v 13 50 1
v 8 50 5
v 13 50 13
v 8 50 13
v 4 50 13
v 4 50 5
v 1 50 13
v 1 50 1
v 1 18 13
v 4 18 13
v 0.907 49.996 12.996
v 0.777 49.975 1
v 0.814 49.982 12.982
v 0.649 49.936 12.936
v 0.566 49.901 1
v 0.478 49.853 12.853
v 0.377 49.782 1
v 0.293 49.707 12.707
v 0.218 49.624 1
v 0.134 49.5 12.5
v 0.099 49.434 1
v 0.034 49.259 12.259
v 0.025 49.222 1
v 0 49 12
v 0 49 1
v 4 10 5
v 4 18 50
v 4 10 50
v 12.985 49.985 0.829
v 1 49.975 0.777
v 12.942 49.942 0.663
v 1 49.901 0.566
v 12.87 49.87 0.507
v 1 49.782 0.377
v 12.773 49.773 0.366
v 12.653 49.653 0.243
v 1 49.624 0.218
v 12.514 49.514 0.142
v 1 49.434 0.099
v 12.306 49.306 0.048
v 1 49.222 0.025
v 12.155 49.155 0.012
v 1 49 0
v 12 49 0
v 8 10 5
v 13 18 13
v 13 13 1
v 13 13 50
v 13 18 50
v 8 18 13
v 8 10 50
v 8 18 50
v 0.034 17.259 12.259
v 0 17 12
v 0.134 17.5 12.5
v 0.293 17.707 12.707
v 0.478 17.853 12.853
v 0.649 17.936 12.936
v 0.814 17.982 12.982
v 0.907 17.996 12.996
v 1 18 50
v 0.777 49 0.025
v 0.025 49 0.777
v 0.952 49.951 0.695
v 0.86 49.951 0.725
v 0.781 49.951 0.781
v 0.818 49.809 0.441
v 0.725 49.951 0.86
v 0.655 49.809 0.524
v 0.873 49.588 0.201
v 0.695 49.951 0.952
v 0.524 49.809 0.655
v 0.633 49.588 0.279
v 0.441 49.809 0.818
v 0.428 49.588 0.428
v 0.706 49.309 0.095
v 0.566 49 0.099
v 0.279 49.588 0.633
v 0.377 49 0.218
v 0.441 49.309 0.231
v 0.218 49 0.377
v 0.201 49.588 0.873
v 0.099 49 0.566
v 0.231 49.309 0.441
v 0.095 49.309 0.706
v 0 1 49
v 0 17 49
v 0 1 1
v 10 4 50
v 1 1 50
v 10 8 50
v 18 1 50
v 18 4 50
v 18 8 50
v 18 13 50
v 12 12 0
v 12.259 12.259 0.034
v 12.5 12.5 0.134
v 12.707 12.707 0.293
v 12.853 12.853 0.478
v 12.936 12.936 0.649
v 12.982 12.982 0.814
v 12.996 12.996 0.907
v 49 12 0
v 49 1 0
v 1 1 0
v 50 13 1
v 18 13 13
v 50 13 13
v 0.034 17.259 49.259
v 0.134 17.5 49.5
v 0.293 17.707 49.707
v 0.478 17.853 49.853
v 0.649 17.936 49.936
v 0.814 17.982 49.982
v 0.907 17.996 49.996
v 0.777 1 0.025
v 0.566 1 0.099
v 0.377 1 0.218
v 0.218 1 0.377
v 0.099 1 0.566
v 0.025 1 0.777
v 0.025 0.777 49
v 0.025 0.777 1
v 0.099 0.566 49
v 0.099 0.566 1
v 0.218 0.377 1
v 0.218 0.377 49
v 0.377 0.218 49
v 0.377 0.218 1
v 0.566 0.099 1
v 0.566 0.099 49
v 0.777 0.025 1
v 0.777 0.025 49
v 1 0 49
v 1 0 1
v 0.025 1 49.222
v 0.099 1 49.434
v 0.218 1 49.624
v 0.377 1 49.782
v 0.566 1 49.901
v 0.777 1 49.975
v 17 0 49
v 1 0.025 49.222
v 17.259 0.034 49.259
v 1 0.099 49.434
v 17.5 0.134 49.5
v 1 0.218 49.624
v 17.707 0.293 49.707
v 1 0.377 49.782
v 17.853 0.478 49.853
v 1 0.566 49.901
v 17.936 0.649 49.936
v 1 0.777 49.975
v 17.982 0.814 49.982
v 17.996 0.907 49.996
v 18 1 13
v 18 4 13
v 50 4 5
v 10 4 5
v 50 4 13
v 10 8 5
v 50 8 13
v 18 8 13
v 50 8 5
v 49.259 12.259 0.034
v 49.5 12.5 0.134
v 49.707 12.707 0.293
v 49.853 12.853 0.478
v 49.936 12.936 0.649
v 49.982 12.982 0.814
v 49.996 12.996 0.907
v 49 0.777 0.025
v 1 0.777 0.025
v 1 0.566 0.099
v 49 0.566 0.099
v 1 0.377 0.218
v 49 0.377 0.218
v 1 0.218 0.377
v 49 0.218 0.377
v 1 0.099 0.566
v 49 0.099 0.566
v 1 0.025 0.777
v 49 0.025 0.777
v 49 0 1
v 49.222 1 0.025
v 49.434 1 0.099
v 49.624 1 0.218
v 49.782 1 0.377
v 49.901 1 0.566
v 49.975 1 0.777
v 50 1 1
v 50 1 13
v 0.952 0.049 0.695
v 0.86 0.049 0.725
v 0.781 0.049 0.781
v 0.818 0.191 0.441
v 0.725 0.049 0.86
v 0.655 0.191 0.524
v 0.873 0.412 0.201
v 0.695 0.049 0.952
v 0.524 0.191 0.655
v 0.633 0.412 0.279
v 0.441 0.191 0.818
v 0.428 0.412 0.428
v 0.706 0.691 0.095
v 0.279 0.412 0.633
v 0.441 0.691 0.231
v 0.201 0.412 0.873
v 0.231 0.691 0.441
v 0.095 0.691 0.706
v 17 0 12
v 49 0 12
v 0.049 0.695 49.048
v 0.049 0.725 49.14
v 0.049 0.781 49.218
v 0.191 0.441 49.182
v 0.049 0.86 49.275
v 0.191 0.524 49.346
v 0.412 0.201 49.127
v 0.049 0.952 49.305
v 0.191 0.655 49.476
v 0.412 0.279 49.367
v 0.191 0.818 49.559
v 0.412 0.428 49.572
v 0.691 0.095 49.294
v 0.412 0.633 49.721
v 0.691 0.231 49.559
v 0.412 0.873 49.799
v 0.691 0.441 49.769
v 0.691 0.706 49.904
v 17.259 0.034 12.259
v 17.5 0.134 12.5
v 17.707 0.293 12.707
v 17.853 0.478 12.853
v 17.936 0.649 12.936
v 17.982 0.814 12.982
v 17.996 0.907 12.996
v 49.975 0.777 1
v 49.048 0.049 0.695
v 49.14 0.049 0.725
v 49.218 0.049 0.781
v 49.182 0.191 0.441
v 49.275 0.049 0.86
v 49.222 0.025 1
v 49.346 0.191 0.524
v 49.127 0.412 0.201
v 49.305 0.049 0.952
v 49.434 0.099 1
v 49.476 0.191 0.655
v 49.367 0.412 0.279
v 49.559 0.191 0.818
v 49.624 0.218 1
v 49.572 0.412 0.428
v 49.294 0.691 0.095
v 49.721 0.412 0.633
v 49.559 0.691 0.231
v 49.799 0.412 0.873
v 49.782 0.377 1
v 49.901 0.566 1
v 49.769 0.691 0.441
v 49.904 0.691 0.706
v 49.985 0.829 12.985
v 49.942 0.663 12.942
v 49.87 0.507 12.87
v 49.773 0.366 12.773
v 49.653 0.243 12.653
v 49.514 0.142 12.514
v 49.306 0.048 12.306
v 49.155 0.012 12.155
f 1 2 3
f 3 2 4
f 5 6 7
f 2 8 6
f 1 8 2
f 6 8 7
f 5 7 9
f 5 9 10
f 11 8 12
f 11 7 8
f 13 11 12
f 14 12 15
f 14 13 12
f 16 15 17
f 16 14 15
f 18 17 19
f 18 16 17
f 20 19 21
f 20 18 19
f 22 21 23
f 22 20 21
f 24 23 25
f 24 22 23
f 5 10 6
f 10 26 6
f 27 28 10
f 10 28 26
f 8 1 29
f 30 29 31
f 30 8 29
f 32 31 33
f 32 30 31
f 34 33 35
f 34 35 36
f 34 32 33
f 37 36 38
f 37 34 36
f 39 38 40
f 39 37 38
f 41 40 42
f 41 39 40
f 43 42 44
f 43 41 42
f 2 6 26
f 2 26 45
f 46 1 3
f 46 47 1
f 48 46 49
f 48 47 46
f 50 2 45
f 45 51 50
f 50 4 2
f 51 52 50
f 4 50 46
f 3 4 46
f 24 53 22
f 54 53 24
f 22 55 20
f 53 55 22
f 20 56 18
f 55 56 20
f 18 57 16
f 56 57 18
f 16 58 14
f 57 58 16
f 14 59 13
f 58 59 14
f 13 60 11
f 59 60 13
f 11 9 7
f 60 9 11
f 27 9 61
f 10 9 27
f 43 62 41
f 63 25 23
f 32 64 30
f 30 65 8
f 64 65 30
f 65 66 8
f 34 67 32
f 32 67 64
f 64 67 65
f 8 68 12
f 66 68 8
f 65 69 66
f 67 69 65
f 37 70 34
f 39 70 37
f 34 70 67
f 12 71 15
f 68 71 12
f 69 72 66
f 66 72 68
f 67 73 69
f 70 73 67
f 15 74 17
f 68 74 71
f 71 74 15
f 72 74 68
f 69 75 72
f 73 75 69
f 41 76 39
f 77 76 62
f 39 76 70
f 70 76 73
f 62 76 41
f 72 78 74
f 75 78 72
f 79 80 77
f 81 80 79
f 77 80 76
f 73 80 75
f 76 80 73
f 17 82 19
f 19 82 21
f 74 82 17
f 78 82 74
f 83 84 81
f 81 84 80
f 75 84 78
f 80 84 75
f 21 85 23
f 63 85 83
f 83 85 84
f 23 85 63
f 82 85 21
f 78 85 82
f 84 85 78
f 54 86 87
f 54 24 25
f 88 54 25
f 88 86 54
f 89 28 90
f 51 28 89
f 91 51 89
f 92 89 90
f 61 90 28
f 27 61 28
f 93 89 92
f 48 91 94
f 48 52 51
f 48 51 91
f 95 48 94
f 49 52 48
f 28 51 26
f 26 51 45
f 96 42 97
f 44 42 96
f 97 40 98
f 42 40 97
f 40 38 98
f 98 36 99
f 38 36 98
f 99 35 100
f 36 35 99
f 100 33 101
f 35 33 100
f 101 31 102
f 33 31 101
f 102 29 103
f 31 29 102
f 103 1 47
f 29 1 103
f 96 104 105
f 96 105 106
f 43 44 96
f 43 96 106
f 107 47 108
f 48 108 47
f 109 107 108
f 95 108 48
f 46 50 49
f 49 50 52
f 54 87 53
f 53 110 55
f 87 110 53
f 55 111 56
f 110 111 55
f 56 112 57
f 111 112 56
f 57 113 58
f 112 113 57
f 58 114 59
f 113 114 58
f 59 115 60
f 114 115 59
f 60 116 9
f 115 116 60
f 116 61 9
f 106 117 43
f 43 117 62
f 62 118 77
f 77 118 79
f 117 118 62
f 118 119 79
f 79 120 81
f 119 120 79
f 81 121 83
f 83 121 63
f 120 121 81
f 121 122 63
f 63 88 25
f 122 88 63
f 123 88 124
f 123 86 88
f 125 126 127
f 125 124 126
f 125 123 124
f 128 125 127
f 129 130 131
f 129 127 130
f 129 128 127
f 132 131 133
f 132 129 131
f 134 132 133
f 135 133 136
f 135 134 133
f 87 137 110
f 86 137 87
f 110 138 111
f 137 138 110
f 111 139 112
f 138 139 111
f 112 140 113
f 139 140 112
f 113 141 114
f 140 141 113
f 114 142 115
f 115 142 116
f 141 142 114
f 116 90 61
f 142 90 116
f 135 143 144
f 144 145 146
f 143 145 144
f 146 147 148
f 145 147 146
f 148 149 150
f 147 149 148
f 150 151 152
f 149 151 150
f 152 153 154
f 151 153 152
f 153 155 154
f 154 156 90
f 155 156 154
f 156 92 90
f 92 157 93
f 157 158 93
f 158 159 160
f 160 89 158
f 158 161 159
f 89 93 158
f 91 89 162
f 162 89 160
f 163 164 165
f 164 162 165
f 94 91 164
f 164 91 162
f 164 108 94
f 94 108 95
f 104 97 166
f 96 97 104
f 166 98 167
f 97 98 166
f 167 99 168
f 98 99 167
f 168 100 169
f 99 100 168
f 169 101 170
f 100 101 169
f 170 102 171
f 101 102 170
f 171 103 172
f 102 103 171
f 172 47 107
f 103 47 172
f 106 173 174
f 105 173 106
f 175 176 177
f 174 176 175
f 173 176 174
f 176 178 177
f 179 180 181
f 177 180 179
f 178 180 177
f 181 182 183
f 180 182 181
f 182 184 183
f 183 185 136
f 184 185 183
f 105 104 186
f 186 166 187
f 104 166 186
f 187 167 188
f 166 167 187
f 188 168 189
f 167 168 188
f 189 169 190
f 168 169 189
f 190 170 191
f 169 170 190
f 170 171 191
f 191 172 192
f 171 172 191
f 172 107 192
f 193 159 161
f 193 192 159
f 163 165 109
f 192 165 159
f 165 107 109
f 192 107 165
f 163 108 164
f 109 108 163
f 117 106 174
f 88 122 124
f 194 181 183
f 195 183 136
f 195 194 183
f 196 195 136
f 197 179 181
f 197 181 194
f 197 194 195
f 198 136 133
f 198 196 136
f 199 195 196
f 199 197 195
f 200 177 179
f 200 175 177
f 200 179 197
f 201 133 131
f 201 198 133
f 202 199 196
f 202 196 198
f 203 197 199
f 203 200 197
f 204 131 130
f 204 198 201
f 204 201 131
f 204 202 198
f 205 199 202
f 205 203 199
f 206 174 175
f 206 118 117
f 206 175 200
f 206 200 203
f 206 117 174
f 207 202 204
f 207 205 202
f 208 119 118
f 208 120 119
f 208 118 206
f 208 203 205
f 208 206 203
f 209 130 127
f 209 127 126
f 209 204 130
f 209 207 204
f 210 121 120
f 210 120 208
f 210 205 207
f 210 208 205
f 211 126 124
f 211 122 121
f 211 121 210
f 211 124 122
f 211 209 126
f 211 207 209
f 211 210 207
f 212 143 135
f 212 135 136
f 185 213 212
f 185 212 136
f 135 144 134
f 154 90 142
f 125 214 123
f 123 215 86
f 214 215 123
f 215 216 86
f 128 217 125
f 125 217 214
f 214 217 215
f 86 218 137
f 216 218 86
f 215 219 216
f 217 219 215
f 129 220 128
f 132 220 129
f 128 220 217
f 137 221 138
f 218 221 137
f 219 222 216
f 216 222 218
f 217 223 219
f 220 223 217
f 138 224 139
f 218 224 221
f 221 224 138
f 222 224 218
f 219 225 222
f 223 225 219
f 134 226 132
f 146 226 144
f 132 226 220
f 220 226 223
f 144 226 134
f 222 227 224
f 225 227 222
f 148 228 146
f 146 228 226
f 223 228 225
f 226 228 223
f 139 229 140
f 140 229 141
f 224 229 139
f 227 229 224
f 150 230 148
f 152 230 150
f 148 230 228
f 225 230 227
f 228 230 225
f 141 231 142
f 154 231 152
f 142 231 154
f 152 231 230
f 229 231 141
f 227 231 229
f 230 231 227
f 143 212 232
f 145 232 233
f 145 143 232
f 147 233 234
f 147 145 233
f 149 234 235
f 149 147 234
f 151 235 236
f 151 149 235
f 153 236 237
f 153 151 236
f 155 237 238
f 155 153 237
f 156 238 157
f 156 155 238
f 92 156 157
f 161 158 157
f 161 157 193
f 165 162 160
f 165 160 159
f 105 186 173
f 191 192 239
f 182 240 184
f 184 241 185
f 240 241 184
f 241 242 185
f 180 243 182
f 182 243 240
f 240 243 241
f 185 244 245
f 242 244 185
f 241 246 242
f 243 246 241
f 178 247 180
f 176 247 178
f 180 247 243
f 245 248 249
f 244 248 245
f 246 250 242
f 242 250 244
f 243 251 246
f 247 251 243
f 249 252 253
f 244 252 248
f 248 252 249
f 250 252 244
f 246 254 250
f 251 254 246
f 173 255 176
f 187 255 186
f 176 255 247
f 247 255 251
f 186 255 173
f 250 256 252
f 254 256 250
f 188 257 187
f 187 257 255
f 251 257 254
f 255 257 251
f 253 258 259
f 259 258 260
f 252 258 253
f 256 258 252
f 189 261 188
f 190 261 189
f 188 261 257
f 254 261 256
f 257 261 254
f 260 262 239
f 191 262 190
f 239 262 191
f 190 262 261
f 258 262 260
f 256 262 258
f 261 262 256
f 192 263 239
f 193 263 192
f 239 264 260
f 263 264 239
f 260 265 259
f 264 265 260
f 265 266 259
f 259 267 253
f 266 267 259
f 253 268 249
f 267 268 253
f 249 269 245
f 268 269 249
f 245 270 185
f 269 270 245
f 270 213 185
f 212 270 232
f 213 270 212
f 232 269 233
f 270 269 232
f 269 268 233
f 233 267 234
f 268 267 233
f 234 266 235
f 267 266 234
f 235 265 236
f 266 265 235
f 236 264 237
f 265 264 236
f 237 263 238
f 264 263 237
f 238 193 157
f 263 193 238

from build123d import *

# Parameters (mm, degrees)
PAD_DEPTH     = 13
PAD001_DEPTH  = 50
SKETCH002_W   = 70.608528
SKETCH002_H   = 4
SKETCH002_W_2 = 4
SKETCH002_H_2 = 60
POCKET_DEPTH  = 45
FILLET_R      = 1


with BuildPart() as part:
    # Sketch → Pad (new body)
    with BuildSketch(Plane.XY):
        Polygon((0, 0), (50, 0), (50, 13), (13, 13), (13, 50), (0, 50), align=None)
    extrude(amount=PAD_DEPTH)

    # Sketch001 → Pad001 (join)
    with BuildSketch(Plane.XY):
        Polygon((0, 0), (18, 0), (18, 13), (13, 13), (13, 18), (0, 18), align=None)
    extrude(amount=PAD001_DEPTH)

    # Sketch002 (on DatumPlane) → Pocket (cut)
    with BuildSketch(Plane.XY.offset(50)):
        with Locations((45.304264, 6)):
            Rectangle(SKETCH002_W, SKETCH002_H)
        with Locations((6, 40)):
            Rectangle(SKETCH002_W_2, SKETCH002_H_2)
    extrude(amount=-POCKET_DEPTH, mode=Mode.SUBTRACT)

    # Fillet
    fillet_edges = [part.edges().sort_by_distance(p)[0] for p in [
        (0, 25, 0),
        (6.5, 50, 0),
        (13, 31.5, 0),
        (31.5, 13, 0),
        (50, 6.5, 0),
        (25, 0, 0),
        (50, 0, 6.5),
        (34, 0, 13),
        (18, 0, 31.5),
        (9, 0, 50),
        (0, 0, 25),
        (0, 9, 50),
        (0, 18, 31.5),
        (0, 34, 13),
        (0, 50, 6.5),
    ]]
    fillet(fillet_edges, radius=FILLET_R)


solid = part.part
